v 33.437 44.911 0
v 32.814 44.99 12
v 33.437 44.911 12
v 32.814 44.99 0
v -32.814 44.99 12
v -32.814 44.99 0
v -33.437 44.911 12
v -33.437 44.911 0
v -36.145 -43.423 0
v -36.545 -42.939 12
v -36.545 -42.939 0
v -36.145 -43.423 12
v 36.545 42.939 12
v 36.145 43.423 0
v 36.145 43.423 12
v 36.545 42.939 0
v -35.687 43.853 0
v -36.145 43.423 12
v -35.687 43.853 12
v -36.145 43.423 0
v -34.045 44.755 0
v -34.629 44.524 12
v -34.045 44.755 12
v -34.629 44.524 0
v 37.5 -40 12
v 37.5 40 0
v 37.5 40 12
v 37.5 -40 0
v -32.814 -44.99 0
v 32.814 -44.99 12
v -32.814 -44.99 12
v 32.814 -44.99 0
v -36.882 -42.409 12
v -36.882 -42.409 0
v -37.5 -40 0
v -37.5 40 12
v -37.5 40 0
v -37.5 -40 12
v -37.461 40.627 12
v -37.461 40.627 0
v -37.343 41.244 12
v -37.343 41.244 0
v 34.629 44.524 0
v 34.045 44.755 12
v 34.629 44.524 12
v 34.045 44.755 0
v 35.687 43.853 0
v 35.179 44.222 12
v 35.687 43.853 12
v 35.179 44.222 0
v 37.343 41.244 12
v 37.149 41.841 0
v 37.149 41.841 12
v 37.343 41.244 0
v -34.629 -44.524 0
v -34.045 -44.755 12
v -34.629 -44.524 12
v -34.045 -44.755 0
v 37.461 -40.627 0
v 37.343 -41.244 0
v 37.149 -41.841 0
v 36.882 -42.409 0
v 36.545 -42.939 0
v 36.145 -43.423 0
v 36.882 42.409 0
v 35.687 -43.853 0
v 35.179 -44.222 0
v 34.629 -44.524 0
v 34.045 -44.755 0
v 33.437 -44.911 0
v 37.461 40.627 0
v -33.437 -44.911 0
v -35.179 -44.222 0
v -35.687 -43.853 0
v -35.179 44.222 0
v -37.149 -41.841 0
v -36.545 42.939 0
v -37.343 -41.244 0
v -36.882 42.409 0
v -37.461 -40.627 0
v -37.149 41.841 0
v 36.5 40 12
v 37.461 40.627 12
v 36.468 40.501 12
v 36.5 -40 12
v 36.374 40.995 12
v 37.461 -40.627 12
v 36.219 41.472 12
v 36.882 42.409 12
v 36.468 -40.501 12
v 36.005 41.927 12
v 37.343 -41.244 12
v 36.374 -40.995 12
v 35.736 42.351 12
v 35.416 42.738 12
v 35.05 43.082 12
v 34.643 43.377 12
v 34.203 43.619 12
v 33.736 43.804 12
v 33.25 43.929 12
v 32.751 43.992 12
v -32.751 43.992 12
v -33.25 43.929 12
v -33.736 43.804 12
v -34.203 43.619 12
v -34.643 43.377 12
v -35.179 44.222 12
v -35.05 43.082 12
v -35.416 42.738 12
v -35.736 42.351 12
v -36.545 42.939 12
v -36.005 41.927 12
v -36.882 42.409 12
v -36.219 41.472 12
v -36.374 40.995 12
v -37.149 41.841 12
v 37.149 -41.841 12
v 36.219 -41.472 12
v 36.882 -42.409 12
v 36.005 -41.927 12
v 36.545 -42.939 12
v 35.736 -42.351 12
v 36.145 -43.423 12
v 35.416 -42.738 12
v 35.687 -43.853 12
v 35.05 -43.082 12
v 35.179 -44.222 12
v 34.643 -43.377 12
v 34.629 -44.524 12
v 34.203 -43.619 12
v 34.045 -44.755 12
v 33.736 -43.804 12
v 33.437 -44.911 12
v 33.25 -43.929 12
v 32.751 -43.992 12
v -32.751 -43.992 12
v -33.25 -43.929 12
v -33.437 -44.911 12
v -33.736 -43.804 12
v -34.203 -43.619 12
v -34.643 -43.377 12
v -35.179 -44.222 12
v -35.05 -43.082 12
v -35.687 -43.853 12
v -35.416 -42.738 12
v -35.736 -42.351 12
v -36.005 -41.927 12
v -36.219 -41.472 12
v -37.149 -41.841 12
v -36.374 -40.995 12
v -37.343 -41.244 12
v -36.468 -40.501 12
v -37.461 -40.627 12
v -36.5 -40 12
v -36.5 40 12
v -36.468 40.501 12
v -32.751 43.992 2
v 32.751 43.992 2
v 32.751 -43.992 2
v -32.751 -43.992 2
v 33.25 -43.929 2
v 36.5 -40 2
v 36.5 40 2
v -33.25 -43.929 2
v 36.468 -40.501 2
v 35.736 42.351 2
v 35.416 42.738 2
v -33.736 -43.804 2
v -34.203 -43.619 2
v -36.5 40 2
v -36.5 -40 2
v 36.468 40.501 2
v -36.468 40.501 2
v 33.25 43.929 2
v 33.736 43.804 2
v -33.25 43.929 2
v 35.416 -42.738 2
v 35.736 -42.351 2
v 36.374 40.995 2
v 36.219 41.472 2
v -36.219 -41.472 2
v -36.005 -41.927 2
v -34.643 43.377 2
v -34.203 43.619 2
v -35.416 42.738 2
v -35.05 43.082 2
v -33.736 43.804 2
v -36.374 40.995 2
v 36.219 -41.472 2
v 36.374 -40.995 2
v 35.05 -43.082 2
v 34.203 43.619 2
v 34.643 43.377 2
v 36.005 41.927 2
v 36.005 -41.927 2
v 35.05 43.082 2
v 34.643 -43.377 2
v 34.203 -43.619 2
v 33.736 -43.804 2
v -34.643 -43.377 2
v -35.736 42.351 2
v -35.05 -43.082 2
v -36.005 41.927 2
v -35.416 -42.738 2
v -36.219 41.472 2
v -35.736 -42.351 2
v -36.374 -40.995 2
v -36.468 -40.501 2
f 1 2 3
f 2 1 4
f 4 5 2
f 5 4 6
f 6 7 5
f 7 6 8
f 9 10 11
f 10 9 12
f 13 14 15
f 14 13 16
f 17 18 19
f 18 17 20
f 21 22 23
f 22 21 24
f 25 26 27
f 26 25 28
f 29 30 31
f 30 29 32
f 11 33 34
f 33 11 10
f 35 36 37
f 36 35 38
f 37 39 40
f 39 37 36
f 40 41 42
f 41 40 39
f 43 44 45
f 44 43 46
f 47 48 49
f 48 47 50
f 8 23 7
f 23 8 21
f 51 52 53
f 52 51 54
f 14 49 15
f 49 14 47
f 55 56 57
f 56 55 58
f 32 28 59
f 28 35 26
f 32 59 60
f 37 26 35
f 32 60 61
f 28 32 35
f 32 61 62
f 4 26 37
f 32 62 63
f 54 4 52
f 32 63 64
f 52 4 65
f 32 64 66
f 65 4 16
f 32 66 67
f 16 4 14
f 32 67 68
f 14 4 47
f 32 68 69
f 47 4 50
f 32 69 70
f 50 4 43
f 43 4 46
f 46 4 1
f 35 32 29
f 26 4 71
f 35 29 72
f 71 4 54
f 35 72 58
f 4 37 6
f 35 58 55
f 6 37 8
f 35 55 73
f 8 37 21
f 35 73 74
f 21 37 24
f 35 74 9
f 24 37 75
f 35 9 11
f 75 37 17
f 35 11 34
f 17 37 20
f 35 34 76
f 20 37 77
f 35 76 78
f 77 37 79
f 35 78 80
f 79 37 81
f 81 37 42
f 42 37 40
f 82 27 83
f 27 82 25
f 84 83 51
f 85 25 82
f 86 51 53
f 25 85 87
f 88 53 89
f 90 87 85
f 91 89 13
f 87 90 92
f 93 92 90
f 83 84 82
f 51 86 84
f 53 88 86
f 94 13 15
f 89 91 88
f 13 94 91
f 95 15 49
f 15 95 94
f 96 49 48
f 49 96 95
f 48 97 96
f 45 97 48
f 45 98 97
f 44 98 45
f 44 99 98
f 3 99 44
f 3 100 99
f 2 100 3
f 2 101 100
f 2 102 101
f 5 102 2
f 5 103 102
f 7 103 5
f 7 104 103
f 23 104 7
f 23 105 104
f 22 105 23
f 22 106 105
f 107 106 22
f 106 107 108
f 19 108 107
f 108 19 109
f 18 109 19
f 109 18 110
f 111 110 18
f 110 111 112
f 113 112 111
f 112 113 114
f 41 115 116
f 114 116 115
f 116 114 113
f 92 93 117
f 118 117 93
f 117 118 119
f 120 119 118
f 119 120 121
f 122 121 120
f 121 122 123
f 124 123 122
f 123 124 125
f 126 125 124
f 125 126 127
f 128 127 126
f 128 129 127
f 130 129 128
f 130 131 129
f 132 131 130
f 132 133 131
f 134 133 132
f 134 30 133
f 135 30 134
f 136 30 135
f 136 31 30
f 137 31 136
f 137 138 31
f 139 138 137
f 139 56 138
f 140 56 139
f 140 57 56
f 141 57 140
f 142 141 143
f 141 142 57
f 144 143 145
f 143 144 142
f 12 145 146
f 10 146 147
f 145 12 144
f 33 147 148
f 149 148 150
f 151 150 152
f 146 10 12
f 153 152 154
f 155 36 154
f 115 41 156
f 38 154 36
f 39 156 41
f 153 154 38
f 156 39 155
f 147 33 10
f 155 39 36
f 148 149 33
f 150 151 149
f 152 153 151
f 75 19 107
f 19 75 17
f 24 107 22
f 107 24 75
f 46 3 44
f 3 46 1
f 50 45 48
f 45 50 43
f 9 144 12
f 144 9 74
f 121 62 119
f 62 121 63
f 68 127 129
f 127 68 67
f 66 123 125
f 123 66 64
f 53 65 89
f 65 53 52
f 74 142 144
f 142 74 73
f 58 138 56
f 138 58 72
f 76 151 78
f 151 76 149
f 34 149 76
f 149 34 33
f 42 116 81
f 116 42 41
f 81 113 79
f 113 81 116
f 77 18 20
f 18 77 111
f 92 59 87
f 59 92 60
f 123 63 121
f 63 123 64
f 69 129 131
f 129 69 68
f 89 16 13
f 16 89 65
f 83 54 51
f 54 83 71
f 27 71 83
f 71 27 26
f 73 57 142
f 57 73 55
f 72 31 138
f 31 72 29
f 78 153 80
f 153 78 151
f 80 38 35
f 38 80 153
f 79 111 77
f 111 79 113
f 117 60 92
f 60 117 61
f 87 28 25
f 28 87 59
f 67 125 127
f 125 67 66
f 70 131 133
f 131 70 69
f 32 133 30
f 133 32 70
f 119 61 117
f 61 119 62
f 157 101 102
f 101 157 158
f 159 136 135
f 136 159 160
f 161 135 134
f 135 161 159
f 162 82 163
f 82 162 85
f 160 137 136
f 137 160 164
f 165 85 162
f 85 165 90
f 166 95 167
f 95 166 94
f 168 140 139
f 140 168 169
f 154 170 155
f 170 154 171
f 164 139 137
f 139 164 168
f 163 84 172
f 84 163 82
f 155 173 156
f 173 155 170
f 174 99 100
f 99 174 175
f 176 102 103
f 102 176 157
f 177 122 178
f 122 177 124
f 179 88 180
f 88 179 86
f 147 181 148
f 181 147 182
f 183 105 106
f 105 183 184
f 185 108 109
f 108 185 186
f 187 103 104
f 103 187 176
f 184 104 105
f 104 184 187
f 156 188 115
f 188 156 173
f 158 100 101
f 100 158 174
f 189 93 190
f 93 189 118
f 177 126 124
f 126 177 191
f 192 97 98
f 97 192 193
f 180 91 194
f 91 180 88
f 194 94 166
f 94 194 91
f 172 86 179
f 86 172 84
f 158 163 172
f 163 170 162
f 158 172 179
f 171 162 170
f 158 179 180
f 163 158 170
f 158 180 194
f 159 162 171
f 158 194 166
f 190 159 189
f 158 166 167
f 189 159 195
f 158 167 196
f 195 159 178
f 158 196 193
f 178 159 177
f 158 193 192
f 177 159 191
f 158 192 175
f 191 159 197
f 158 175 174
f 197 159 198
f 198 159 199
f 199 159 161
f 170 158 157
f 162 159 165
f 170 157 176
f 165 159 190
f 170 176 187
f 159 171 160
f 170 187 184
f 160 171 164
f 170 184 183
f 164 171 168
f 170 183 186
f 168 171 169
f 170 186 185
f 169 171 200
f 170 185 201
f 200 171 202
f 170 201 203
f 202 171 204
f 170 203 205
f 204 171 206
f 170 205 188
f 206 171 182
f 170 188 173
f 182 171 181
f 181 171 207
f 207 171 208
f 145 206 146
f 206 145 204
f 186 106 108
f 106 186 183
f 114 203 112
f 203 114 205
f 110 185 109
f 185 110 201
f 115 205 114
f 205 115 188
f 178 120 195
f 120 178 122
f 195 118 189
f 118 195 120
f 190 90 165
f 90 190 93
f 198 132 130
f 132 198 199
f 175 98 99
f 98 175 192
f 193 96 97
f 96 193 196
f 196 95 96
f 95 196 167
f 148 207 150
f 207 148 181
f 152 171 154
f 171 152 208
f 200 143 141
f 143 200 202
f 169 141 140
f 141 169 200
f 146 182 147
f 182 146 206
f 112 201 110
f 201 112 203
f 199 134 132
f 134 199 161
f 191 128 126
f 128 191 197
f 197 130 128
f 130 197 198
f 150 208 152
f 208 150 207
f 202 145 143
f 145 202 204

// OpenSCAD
$fn = 50;


difference() {
	union() {
		hull() {
			translate(v = [-32.5000000000, 40.0000000000, 0]) {
				cylinder(h = 12, r = 5);
			}
			translate(v = [32.5000000000, 40.0000000000, 0]) {
				cylinder(h = 12, r = 5);
			}
			translate(v = [-32.5000000000, -40.0000000000, 0]) {
				cylinder(h = 12, r = 5);
			}
			translate(v = [32.5000000000, -40.0000000000, 0]) {
				cylinder(h = 12, r = 5);
			}
		}
	}
	union() {
		translate(v = [0, 0, 2]) {
			hull() {
				translate(v = [-32.5000000000, 40.0000000000, 0]) {
					cylinder(h = 10, r = 4);
				}
				translate(v = [32.5000000000, 40.0000000000, 0]) {
					cylinder(h = 10, r = 4);
				}
				translate(v = [-32.5000000000, -40.0000000000, 0]) {
					cylinder(h = 10, r = 4);
				}
				translate(v = [32.5000000000, -40.0000000000, 0]) {
					cylinder(h = 10, r = 4);
				}
			}
		}
	}
}
